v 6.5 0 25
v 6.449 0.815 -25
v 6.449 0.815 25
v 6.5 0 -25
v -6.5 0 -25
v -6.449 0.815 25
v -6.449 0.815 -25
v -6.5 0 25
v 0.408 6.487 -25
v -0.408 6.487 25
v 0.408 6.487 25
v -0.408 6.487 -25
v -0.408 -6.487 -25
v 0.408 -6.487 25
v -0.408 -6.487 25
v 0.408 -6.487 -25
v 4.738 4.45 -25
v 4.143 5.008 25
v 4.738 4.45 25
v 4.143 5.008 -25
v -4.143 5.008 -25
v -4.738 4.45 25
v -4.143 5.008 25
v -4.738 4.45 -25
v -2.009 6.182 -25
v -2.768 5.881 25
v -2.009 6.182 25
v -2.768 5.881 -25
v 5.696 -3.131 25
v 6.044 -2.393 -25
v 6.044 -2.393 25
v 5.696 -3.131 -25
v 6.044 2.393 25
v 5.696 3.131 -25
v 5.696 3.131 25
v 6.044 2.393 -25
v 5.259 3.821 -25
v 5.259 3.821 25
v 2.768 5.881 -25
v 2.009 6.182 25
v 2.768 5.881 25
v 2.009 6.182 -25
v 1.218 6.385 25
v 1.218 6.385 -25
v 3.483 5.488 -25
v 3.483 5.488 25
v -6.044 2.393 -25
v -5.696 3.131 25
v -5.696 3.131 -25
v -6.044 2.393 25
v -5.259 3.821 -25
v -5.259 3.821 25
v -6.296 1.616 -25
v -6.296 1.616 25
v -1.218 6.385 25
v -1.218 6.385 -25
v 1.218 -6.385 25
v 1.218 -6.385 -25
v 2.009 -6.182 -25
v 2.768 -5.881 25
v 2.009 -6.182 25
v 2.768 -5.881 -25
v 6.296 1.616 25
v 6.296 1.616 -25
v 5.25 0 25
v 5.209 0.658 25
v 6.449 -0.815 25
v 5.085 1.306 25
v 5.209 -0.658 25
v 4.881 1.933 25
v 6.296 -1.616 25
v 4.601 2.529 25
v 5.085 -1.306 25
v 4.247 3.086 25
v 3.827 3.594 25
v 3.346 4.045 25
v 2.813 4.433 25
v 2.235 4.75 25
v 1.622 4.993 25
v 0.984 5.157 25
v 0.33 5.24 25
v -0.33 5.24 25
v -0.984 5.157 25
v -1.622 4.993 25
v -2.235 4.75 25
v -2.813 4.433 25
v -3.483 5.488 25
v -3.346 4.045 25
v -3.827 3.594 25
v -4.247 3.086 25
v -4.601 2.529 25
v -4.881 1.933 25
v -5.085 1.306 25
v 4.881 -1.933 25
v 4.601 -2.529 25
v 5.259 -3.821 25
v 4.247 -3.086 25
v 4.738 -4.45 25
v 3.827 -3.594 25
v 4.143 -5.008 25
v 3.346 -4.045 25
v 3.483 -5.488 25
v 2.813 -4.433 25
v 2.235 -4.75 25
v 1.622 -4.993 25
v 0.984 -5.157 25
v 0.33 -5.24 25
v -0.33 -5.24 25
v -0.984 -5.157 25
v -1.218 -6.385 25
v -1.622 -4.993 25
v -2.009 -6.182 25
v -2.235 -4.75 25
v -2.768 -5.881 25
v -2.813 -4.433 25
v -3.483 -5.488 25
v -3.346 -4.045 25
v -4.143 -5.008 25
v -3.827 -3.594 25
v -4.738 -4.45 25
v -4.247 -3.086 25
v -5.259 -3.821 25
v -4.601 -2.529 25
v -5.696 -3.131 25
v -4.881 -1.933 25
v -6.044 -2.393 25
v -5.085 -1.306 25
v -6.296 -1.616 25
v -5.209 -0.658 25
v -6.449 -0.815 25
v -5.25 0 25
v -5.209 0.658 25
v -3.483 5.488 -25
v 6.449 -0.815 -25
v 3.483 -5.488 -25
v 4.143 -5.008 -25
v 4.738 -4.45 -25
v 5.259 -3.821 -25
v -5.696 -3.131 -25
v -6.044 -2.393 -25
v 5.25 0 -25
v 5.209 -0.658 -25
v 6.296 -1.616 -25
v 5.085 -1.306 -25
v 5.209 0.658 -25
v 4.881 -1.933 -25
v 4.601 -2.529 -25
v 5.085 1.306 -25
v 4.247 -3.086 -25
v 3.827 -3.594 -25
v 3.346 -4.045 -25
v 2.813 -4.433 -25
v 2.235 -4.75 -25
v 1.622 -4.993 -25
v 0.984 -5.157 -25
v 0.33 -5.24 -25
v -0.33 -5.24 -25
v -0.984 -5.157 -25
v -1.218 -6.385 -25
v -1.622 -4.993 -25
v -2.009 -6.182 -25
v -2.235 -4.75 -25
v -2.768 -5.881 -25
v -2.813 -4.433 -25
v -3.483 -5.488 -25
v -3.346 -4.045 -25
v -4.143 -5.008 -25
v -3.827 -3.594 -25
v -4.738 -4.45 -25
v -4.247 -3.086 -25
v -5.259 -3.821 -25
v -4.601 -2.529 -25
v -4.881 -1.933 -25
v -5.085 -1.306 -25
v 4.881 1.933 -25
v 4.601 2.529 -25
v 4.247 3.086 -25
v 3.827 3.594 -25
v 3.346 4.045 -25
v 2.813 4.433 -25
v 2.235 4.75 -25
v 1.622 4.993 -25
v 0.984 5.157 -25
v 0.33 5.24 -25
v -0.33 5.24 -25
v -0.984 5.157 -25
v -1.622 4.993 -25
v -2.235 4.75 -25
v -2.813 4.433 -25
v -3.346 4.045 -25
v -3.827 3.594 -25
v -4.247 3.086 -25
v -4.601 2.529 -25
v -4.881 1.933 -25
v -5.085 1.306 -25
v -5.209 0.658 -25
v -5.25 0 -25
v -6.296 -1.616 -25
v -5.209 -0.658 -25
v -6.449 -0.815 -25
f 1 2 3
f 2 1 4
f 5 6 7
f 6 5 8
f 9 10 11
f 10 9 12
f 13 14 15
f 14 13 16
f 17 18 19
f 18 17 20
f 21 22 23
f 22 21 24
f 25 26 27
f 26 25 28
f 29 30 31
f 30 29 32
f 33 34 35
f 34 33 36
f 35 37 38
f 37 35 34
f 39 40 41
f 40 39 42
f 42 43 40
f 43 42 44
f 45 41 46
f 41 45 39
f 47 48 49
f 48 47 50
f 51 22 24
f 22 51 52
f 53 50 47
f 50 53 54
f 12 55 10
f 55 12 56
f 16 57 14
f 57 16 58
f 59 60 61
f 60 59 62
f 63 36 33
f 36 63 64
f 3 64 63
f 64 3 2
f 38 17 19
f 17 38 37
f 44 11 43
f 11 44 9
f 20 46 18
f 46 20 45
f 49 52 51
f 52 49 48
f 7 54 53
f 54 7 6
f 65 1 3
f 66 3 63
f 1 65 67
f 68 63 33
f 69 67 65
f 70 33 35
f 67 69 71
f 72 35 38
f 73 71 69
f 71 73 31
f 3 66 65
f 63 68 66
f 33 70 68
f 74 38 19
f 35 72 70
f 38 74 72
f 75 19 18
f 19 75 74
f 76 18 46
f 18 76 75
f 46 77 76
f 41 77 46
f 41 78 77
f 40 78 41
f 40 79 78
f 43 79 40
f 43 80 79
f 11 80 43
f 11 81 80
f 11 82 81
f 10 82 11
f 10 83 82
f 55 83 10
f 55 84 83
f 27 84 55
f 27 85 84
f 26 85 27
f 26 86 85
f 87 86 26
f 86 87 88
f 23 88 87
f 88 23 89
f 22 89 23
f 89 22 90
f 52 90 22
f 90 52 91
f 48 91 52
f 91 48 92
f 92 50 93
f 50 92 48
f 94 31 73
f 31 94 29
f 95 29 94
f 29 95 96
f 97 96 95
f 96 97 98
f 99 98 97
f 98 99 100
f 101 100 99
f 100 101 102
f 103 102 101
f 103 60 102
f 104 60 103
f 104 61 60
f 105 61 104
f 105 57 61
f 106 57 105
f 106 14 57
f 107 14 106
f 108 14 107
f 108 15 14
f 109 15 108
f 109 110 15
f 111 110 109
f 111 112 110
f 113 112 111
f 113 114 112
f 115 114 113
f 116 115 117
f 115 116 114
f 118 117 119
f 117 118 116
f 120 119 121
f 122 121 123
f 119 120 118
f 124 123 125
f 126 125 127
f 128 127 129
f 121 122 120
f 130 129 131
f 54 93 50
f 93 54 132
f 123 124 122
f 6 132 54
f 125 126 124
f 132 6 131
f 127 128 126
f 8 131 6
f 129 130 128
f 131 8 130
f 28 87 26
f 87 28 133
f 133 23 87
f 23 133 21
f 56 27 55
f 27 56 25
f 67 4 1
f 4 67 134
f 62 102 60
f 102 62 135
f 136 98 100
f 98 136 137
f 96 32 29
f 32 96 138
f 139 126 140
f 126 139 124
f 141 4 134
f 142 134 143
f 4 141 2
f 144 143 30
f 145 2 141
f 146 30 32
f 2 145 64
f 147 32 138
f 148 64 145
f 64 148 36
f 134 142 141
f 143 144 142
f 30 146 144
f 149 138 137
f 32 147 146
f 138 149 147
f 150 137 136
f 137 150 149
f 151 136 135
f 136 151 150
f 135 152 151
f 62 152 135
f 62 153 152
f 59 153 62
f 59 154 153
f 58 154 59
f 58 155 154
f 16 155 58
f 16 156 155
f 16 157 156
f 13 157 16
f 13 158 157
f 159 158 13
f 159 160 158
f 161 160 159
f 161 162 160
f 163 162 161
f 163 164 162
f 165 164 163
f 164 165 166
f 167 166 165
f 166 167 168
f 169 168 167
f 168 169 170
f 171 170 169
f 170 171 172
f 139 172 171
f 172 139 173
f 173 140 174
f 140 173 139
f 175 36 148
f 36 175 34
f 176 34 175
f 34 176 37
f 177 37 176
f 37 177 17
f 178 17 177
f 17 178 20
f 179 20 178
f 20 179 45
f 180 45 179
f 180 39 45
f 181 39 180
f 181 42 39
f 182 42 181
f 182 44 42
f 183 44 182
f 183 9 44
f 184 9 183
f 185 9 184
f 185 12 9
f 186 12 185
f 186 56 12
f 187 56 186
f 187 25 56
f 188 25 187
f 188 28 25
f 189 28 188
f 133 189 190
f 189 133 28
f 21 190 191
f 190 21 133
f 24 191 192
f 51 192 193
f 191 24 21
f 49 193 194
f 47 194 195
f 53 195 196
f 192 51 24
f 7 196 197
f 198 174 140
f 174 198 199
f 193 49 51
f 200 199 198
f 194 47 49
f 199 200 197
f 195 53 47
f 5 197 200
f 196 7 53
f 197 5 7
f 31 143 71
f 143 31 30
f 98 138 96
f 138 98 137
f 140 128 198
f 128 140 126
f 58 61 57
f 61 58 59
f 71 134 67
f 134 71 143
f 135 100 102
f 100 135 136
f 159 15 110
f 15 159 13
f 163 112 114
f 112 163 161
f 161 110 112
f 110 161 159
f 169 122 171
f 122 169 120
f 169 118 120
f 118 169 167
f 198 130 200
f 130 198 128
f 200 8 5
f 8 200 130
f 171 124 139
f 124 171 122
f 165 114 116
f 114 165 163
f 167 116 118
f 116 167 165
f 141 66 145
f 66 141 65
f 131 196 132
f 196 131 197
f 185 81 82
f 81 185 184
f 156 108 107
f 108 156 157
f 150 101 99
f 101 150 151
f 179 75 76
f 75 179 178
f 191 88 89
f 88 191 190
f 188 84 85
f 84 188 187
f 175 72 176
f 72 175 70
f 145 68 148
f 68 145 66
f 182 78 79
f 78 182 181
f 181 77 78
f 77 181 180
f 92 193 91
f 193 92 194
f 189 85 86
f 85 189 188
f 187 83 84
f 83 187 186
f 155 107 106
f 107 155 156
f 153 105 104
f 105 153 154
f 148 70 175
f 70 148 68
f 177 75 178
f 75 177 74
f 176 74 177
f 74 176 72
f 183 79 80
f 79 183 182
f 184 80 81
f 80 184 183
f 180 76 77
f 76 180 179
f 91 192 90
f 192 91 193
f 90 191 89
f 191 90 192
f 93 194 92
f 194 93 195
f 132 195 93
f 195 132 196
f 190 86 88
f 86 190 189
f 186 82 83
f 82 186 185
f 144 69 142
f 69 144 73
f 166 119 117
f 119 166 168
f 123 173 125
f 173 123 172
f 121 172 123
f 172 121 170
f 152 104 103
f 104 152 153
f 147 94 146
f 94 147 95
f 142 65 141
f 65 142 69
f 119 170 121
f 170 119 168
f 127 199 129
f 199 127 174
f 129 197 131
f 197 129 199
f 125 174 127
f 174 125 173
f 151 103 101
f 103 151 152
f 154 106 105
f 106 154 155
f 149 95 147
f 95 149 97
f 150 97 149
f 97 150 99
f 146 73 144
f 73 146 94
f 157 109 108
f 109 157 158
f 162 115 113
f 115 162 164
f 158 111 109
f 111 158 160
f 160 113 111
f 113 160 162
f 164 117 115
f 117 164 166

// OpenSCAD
$fn = 50;


difference() {
	union() {
		translate(v = [0, 0, -25.0000000000]) {
			cylinder(h = 50, r = 6.5000000000);
		}
	}
	union() {
		translate(v = [0, 0, -100.0000000000]) {
			cylinder(h = 200, r = 5.2500000000);
		}
	}
}
